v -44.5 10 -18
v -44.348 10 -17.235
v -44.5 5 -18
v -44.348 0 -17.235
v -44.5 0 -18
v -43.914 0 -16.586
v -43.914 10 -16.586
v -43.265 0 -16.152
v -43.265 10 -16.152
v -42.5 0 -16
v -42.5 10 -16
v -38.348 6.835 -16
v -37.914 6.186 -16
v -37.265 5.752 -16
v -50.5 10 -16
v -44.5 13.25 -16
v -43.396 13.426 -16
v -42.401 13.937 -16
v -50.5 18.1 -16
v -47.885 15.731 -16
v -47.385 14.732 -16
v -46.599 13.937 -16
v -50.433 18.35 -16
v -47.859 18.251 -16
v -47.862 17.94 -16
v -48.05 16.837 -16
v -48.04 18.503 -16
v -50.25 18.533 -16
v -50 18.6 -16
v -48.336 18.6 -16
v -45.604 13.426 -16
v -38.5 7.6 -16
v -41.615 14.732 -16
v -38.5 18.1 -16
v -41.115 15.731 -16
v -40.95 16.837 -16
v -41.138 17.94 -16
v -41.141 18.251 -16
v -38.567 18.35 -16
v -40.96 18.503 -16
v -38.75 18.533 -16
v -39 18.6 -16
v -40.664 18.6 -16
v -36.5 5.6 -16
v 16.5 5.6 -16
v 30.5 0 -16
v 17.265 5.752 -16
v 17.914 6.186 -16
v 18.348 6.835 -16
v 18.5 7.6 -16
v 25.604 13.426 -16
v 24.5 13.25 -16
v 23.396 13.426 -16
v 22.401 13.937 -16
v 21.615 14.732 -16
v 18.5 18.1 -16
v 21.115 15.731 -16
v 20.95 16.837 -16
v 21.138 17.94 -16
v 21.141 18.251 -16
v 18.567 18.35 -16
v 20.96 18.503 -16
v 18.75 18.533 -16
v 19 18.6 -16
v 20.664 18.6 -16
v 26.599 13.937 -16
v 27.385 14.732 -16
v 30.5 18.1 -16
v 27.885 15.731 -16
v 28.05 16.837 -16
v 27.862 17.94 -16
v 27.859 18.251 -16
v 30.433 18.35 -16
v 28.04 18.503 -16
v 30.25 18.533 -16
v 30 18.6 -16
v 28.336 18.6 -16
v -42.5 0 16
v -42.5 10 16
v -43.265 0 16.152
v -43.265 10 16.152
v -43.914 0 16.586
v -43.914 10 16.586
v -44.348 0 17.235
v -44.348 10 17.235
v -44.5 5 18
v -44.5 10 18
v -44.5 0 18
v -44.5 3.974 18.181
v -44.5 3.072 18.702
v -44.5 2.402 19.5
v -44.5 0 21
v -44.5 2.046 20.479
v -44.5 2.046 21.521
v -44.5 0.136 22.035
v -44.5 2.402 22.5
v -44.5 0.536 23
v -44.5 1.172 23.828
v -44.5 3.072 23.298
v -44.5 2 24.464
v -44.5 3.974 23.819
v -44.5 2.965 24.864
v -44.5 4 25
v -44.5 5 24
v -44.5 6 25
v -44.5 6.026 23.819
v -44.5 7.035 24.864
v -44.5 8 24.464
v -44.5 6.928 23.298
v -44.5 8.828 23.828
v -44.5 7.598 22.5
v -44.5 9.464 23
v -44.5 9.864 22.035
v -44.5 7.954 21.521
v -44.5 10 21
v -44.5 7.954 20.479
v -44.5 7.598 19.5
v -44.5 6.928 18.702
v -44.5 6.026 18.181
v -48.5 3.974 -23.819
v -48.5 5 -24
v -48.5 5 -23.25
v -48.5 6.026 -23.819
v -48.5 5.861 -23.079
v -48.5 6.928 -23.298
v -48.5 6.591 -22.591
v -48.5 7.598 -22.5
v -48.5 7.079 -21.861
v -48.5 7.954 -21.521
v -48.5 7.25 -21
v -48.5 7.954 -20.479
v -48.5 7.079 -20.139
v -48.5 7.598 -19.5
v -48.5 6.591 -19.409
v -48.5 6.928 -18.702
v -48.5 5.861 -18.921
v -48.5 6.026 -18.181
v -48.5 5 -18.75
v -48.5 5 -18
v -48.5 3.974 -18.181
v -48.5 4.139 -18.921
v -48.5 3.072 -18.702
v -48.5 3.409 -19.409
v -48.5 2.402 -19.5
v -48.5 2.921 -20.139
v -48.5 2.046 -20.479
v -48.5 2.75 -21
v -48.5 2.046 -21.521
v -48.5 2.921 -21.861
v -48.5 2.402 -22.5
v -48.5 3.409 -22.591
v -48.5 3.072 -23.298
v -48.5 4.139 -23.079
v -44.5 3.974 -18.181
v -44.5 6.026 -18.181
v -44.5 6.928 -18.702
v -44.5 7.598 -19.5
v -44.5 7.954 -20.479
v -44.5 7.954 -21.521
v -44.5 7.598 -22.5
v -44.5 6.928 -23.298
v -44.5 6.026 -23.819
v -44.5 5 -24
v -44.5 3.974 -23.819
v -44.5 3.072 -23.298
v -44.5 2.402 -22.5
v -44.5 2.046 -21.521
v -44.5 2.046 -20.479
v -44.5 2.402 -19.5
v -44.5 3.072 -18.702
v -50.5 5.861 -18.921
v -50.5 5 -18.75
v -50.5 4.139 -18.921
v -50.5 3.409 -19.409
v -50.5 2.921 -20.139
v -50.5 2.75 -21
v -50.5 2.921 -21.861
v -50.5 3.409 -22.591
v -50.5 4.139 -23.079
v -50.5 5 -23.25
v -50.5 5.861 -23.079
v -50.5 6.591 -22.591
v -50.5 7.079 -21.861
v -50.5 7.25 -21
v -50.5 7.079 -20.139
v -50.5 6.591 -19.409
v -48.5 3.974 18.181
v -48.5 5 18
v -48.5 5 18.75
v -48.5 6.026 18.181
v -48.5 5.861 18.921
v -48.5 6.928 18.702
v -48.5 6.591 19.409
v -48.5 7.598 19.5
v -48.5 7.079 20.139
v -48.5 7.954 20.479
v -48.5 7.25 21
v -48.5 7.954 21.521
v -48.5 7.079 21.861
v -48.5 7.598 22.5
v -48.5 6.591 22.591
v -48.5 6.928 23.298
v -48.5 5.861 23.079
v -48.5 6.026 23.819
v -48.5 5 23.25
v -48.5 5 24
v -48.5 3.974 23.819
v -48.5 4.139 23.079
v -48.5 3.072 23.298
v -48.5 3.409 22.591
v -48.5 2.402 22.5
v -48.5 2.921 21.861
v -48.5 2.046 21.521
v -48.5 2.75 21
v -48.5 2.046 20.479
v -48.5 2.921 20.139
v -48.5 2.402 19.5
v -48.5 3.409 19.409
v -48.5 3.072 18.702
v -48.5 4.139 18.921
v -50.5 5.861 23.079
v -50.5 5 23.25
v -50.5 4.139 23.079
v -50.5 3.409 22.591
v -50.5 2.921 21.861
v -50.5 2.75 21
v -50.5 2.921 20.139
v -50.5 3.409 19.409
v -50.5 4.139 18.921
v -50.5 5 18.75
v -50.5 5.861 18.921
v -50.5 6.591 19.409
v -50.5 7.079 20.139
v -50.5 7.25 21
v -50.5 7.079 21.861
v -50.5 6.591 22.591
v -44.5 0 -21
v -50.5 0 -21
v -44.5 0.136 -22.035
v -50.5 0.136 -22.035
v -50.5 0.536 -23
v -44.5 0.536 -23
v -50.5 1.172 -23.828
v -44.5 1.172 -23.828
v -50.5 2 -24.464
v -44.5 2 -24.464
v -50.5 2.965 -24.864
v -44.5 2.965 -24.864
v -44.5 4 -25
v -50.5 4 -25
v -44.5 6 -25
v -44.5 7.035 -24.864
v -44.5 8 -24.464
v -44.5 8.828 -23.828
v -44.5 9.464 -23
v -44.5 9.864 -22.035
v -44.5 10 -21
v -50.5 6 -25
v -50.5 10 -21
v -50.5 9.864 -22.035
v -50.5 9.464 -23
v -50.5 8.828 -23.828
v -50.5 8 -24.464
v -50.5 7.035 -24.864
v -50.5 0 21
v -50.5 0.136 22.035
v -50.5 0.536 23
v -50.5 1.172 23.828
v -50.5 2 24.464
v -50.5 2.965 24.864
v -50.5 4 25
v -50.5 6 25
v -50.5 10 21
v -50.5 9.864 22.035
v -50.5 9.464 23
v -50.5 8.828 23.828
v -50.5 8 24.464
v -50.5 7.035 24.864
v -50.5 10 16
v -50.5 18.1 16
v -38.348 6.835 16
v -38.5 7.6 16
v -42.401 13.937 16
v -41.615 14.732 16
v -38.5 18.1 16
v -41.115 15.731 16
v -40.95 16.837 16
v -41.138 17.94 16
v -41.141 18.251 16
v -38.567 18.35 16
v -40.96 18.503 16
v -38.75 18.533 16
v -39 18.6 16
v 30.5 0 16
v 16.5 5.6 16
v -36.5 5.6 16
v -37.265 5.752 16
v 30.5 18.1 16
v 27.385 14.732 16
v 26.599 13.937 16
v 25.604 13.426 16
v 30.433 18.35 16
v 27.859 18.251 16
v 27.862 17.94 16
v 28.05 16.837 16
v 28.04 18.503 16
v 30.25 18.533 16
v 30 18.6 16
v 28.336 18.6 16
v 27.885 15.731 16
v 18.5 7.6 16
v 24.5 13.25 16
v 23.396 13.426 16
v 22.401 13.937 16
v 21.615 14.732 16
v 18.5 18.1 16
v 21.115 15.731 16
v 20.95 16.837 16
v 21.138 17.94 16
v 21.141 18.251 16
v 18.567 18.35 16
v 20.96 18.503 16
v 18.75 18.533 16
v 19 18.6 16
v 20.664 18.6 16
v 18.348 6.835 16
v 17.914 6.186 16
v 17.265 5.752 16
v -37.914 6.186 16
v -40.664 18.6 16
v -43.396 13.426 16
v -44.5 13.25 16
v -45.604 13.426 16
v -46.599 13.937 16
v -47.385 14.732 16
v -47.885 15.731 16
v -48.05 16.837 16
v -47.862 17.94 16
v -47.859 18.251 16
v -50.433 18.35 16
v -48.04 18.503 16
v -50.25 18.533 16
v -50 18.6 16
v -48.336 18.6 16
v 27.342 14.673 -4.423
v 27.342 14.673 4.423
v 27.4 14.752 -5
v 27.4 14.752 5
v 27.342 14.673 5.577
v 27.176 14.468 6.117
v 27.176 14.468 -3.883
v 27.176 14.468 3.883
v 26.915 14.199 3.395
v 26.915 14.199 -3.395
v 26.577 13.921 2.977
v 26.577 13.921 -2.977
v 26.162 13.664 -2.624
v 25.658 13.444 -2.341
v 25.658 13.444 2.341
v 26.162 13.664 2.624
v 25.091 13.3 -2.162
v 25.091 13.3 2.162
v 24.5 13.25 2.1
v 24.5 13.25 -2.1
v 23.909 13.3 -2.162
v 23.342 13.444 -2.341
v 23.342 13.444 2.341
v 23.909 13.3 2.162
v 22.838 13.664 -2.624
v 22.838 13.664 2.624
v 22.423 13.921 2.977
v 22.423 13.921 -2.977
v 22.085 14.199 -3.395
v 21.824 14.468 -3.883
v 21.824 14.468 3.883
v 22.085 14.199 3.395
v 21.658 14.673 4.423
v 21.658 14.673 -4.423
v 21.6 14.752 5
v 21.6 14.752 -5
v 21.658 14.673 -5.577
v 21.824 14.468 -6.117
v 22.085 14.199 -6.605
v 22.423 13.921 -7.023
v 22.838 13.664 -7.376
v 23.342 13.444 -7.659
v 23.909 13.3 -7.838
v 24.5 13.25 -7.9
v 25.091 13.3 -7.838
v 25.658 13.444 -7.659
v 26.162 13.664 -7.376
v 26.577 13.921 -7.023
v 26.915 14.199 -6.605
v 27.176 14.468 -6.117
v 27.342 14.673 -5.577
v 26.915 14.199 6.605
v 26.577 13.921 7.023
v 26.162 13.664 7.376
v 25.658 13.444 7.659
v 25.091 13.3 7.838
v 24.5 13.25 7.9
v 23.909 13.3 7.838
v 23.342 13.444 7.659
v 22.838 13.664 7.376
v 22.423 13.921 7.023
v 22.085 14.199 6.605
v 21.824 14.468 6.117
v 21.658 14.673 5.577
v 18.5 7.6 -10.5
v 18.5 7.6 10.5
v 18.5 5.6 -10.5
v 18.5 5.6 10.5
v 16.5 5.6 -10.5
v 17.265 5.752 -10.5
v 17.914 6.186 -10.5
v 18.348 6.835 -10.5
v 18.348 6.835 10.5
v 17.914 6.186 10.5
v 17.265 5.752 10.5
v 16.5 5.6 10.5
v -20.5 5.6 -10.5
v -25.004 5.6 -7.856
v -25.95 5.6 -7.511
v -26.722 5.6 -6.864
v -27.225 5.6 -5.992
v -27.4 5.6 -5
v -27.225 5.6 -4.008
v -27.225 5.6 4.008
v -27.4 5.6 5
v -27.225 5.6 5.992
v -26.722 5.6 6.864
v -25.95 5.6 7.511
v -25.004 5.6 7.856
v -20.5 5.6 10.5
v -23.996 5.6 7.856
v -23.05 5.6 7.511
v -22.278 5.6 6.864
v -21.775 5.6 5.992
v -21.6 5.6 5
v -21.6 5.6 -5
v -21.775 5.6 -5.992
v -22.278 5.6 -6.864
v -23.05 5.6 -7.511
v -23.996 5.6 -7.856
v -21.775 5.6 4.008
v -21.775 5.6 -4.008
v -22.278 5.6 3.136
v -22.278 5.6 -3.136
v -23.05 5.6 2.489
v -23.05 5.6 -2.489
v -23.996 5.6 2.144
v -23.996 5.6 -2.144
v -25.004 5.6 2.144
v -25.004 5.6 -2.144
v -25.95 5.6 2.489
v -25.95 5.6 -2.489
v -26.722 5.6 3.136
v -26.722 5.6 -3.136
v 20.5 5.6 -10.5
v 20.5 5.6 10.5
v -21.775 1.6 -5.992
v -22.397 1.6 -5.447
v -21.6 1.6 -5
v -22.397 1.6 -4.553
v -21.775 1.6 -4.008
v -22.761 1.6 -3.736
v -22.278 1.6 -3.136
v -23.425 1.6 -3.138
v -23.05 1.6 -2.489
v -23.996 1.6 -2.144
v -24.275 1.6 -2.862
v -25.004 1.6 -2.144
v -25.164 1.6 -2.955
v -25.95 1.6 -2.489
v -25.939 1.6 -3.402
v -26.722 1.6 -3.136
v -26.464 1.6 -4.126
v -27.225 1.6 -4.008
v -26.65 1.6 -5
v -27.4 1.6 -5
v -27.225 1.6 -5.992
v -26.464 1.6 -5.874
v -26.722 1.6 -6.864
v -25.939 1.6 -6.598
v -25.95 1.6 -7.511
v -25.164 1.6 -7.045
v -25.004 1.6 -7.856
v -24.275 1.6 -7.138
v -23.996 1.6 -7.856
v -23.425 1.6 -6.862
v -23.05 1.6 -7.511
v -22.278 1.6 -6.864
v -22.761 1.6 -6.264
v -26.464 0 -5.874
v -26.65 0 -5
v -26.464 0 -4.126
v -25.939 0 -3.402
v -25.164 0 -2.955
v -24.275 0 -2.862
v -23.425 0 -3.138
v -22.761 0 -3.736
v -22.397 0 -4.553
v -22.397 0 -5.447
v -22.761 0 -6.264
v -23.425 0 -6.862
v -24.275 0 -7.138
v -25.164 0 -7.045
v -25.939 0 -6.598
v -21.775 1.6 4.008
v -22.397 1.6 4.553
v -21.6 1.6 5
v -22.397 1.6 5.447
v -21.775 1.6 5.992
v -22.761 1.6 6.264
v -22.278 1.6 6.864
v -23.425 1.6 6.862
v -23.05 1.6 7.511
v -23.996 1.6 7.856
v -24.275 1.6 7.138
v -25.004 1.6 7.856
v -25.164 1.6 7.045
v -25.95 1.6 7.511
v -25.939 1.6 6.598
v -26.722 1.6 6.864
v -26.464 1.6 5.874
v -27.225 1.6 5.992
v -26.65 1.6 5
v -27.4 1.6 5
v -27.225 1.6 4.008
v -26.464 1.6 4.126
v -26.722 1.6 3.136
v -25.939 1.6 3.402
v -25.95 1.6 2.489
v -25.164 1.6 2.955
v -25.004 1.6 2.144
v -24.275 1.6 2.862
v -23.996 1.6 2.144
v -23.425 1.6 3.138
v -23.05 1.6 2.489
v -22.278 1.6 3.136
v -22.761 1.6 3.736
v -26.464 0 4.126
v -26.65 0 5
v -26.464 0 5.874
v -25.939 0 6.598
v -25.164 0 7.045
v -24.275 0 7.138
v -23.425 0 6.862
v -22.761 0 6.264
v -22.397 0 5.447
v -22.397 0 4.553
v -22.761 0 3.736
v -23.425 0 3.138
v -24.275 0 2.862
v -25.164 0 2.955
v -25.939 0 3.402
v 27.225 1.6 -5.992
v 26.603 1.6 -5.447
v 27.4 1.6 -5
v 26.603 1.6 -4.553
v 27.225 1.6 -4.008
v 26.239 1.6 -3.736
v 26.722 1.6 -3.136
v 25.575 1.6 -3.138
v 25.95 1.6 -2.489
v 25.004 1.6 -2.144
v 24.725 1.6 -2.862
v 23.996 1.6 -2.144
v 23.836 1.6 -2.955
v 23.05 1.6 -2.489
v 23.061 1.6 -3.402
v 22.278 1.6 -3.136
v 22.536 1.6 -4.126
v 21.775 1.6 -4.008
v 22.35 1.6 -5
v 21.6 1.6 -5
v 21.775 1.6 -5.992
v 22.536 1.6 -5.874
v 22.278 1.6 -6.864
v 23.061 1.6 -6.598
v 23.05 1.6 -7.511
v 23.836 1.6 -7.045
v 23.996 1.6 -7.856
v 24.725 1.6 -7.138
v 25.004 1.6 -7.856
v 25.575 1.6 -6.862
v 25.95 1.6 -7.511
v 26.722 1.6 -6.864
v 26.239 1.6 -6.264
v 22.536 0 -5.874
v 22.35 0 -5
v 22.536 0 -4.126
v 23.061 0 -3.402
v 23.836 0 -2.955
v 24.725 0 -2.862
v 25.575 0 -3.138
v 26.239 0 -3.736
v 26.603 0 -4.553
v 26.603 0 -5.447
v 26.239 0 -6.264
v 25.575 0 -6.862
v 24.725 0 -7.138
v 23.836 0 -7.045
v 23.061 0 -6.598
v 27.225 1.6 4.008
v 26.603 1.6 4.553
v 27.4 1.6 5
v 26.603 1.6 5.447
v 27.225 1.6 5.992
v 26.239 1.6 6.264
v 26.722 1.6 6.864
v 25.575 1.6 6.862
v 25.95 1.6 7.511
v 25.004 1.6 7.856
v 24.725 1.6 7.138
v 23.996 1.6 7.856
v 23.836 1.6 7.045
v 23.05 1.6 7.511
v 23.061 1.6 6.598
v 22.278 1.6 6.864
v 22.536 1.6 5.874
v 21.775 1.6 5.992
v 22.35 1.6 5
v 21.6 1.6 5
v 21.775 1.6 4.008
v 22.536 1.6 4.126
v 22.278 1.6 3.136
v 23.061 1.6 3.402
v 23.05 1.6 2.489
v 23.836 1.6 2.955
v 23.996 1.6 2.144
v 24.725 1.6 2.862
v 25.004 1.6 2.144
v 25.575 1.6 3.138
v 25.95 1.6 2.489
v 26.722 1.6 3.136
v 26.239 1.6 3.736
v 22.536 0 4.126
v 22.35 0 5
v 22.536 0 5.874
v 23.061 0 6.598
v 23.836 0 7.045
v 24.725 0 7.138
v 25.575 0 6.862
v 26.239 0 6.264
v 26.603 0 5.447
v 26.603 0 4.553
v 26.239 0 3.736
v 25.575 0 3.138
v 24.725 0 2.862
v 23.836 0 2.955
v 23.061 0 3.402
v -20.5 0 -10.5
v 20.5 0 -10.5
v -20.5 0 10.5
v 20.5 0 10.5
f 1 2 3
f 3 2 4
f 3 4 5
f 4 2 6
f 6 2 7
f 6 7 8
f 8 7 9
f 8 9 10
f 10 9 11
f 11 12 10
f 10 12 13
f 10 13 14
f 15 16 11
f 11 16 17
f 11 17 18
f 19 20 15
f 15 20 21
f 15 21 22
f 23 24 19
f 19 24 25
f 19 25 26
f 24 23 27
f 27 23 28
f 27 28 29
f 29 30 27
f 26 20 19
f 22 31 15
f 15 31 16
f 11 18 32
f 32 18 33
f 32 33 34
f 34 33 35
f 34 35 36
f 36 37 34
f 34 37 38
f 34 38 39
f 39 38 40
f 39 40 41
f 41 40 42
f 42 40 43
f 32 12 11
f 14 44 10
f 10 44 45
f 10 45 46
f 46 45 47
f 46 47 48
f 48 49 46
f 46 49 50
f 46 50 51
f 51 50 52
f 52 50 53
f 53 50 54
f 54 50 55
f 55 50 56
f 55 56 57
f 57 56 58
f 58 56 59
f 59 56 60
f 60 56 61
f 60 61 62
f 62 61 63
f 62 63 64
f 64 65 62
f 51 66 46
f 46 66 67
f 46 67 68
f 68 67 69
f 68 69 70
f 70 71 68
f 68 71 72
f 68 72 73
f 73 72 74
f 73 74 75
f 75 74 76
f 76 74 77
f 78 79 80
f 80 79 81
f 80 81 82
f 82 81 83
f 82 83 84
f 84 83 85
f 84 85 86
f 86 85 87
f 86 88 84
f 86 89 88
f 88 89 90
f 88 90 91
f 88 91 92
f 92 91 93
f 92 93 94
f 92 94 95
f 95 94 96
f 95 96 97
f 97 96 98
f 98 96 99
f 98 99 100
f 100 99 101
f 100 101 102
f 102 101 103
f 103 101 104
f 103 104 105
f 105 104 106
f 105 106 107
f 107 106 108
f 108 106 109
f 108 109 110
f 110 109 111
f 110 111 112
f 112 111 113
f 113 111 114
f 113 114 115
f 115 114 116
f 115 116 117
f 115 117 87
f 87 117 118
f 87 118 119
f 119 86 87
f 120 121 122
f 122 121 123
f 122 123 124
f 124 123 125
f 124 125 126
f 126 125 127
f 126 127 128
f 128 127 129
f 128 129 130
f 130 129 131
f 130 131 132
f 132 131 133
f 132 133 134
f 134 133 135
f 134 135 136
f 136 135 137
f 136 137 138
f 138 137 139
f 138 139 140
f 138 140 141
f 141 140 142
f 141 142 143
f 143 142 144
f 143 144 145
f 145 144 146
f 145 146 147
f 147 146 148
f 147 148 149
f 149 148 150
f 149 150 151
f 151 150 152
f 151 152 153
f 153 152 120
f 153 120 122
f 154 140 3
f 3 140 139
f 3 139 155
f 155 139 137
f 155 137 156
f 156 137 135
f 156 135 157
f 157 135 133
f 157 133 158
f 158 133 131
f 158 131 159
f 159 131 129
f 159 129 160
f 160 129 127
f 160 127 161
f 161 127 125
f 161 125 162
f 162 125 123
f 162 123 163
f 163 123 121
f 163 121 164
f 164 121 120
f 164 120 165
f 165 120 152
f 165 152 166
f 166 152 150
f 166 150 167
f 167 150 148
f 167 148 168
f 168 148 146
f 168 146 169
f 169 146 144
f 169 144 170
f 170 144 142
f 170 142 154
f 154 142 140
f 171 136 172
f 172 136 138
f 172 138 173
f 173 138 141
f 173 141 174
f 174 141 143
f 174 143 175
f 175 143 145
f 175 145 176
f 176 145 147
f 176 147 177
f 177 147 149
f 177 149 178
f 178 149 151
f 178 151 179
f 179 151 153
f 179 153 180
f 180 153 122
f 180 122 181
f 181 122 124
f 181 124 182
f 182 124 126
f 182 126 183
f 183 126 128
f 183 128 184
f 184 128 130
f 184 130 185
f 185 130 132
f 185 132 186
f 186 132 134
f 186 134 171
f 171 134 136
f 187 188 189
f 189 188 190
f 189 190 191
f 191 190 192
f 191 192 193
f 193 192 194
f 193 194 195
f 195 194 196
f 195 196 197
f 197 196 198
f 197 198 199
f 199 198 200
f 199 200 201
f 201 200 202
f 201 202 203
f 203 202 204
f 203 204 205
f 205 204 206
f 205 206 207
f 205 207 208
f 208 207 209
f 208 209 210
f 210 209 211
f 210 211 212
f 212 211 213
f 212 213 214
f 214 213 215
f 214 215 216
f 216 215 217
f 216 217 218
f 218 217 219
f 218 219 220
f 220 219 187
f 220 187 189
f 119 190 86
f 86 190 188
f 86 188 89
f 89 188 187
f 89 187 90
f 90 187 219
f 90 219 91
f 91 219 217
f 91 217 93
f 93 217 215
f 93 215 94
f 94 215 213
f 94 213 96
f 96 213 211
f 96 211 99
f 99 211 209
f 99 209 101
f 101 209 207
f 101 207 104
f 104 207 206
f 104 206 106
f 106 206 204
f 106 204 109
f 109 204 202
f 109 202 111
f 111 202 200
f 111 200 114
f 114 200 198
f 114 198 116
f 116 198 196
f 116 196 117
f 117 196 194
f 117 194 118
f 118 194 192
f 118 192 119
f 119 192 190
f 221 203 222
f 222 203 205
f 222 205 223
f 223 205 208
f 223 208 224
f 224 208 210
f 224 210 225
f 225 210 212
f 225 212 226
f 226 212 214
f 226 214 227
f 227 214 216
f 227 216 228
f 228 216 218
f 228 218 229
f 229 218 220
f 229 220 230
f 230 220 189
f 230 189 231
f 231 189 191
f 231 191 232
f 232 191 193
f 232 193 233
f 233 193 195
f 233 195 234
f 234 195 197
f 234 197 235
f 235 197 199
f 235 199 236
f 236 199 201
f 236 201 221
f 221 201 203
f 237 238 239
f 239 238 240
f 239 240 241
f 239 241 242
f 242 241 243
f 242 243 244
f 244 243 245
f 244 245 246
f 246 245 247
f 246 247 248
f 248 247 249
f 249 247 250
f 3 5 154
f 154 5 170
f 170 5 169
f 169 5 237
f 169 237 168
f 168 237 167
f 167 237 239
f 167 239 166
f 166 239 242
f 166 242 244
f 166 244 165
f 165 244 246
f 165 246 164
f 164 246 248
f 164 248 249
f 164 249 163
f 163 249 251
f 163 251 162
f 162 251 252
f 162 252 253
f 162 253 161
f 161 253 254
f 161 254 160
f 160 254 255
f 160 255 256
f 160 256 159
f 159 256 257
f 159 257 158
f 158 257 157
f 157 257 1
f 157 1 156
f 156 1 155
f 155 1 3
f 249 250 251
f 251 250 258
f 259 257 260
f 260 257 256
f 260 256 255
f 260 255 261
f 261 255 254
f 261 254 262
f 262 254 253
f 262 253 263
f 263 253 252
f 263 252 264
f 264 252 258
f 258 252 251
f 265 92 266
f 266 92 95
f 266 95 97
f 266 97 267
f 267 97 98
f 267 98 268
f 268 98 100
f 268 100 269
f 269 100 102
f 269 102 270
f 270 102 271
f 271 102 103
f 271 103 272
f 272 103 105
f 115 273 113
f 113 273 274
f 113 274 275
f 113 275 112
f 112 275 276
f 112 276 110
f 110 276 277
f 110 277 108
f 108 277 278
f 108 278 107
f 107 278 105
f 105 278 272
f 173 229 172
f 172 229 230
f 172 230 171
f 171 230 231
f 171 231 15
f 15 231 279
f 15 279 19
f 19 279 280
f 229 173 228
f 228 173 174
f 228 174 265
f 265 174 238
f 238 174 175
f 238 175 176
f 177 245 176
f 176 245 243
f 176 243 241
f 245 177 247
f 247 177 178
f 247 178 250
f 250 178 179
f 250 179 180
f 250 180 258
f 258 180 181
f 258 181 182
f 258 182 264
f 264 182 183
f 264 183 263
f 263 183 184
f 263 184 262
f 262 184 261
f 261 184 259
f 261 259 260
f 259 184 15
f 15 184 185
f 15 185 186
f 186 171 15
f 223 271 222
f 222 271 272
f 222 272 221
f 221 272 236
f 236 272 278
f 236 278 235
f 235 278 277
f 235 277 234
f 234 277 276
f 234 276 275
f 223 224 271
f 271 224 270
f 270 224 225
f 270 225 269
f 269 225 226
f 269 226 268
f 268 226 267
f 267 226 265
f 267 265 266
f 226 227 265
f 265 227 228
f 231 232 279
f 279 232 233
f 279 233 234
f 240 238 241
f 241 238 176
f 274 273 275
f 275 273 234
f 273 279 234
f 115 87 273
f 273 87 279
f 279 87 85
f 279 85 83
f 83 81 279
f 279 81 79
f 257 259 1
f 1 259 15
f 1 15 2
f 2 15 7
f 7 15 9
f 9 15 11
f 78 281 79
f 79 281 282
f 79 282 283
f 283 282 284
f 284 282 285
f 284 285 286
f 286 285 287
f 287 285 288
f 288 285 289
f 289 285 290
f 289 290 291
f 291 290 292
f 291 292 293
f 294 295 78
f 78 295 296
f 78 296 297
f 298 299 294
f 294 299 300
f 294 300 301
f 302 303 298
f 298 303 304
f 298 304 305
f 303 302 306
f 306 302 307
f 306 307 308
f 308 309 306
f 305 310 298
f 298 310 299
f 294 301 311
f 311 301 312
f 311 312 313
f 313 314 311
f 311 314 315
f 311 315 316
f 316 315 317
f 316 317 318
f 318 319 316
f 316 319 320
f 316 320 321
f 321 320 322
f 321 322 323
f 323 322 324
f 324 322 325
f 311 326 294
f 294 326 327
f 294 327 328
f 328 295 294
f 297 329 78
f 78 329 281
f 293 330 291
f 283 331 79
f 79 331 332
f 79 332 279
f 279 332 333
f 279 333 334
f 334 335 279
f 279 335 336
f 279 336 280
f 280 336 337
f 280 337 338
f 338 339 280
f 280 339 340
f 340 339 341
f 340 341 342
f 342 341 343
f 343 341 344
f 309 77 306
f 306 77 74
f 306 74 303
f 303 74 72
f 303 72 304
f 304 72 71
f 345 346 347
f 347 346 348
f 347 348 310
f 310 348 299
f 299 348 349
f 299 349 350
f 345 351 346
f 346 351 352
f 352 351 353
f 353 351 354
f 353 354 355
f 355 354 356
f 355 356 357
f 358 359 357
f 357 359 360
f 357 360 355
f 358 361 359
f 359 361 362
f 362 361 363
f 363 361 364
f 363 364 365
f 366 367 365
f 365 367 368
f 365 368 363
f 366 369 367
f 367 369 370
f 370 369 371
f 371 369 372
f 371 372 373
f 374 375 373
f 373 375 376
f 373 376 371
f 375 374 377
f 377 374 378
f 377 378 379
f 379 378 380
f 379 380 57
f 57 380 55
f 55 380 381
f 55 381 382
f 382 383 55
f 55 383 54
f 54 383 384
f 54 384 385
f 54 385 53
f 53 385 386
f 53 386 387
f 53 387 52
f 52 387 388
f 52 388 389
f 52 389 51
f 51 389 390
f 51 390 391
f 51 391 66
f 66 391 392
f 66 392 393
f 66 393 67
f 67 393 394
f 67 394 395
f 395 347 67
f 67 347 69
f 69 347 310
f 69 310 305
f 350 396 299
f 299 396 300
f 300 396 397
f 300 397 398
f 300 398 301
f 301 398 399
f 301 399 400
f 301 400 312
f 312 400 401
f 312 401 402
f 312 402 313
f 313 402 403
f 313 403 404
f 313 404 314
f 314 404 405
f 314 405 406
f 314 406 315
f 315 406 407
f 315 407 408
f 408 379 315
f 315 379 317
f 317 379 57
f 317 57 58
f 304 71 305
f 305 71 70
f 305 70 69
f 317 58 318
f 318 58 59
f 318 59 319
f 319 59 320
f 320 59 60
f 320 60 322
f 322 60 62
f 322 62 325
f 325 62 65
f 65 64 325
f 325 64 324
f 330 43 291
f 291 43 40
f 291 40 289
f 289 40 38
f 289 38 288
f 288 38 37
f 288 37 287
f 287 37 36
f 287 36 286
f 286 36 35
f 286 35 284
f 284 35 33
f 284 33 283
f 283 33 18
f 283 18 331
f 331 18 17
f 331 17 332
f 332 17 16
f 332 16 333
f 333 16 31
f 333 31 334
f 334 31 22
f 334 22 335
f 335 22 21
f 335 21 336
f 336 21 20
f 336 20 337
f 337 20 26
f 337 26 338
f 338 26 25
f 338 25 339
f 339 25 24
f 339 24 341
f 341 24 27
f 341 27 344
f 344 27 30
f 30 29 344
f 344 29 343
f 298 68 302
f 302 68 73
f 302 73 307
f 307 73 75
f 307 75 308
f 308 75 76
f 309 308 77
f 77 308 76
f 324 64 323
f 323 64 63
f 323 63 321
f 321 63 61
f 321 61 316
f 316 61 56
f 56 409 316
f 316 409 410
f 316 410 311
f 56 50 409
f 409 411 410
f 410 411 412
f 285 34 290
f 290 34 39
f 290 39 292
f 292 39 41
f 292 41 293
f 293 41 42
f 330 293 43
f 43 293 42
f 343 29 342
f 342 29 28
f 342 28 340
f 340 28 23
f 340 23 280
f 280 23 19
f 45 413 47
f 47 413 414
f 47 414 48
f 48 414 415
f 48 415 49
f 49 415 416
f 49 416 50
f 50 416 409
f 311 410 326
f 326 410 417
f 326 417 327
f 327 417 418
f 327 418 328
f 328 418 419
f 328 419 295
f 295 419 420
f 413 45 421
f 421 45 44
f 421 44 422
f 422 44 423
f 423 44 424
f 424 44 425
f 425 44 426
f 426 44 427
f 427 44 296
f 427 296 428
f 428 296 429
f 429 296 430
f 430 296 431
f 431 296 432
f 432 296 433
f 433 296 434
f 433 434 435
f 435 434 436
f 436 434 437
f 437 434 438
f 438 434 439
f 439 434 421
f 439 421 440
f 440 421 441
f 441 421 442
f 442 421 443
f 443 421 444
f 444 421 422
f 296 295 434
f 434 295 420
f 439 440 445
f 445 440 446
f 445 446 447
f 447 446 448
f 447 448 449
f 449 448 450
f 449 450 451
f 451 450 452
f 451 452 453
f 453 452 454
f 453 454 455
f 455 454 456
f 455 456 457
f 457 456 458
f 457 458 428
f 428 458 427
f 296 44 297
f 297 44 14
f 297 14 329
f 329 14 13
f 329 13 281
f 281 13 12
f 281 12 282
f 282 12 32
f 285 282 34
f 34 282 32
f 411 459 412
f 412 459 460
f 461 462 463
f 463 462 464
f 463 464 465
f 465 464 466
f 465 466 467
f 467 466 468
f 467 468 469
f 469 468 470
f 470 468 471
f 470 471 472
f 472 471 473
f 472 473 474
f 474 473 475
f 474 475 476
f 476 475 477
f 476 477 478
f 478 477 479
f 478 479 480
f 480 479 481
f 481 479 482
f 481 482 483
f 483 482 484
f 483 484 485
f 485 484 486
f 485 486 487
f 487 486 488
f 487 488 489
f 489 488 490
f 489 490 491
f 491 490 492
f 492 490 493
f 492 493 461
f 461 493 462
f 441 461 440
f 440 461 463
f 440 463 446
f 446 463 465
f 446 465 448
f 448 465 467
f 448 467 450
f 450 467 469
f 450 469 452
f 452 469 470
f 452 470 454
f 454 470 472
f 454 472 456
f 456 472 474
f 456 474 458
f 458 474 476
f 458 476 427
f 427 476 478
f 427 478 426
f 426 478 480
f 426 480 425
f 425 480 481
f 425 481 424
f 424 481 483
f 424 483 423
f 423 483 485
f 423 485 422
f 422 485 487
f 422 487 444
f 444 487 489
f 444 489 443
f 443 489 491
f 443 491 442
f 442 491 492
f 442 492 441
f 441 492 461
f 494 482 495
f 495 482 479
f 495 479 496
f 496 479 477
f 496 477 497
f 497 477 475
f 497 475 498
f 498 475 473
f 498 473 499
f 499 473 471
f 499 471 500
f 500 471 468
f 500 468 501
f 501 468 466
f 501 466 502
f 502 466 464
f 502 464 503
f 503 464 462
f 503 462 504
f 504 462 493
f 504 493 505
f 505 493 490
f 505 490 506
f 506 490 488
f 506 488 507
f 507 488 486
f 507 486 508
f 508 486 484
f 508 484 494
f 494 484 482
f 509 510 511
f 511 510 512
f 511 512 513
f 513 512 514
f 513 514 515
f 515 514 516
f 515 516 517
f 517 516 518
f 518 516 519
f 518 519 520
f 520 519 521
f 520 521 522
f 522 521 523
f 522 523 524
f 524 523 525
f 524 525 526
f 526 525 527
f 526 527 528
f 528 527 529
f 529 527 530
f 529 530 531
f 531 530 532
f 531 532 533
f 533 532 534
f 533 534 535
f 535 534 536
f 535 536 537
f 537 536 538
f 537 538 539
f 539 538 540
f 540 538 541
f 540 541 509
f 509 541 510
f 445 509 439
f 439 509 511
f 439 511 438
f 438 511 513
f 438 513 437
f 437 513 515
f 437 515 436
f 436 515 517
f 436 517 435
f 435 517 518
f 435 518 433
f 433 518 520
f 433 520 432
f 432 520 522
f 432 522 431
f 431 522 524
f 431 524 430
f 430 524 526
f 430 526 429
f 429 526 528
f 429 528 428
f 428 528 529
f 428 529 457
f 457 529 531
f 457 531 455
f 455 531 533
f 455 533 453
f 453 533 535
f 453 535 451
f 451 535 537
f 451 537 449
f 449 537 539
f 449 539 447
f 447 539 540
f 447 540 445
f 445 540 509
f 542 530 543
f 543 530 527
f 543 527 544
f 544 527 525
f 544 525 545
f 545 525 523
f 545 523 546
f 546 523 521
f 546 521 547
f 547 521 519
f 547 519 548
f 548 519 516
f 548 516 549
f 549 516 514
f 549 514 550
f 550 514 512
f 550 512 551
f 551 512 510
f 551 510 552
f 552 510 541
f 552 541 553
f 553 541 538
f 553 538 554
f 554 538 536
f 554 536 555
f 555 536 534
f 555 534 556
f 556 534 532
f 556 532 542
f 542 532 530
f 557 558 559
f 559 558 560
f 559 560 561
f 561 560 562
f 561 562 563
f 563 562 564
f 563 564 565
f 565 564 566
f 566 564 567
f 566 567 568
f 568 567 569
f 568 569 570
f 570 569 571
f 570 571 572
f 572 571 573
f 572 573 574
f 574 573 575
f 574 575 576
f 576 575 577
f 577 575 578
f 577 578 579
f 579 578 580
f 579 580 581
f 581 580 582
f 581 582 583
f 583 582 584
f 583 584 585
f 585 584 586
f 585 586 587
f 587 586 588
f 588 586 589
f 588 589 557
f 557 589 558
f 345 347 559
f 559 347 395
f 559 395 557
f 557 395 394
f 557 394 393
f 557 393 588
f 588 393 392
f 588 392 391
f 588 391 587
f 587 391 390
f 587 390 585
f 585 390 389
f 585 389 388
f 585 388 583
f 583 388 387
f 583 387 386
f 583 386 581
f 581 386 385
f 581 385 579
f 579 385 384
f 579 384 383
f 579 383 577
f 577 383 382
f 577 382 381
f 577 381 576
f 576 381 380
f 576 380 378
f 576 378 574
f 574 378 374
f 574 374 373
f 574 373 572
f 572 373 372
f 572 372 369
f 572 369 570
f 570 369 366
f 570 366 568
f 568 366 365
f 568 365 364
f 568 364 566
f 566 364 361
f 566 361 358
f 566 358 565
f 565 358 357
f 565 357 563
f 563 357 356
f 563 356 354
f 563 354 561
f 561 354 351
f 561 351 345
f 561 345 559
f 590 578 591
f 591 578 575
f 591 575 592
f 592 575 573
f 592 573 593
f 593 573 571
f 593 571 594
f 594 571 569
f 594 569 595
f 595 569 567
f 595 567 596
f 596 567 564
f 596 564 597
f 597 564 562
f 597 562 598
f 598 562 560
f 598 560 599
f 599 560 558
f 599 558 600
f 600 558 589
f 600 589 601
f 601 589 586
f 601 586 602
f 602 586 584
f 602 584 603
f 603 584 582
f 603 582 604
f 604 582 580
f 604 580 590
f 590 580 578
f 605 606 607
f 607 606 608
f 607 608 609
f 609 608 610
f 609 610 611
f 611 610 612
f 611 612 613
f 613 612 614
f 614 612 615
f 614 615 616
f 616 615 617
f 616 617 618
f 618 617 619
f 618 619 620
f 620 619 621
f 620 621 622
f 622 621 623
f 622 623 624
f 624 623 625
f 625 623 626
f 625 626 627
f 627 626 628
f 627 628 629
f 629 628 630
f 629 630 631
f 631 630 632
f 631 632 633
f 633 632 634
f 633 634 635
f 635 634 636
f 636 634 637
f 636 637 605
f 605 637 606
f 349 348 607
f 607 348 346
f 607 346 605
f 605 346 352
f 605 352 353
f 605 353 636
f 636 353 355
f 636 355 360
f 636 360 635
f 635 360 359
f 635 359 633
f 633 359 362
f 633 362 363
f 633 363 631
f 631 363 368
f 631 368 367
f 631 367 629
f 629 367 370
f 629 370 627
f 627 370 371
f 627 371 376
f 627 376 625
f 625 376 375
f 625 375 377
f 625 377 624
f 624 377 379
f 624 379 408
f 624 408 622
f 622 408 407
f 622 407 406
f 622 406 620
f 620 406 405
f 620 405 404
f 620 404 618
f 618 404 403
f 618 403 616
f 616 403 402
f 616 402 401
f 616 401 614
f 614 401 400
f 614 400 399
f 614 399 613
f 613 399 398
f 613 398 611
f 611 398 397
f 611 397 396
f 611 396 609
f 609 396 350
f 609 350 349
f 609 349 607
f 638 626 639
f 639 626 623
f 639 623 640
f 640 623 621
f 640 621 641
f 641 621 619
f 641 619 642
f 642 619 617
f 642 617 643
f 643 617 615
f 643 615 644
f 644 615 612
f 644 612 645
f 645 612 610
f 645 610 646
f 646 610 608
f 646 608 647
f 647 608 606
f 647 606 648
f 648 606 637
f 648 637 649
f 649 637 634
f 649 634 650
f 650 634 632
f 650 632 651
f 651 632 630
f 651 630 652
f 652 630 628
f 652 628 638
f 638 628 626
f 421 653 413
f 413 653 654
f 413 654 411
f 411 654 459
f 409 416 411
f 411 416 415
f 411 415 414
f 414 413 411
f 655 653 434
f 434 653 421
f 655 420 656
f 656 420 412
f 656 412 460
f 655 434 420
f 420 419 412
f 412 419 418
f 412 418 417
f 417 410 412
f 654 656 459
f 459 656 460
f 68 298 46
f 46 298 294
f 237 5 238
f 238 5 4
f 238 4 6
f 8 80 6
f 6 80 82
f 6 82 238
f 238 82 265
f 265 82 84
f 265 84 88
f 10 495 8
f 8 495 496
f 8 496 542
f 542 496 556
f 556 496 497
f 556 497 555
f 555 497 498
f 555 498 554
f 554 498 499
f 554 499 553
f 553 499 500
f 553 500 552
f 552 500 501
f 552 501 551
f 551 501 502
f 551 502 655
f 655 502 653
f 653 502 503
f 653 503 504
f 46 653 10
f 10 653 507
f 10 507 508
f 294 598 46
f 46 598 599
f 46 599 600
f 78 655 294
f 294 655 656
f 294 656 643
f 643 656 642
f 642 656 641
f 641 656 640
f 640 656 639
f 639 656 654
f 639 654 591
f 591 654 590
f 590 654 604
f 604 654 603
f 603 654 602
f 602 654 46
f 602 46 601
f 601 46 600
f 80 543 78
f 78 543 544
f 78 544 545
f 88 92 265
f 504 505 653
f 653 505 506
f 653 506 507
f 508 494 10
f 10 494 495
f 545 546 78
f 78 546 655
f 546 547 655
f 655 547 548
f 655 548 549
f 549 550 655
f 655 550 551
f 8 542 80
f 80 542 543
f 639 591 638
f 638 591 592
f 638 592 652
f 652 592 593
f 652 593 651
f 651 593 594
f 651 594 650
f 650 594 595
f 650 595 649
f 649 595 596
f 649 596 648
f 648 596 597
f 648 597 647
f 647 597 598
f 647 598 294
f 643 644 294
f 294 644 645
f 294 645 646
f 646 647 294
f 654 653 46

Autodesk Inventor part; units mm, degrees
ref_plane "YZ Plane" through (0, 0, 0) normal (1, 0, 0) x (0, 1, 0)
ref_plane "XZ Plane" through (0, 0, 0) normal (0, 1, 0) x (-1, 0, 0)
ref_plane "XY Plane" through (0, 0, 0) normal (0, 0, 1) x (1, 0, 0)
sketch "Sketch1" plane through (0, 0, 0) normal (0, 1, 0) x (-1, 0, 0)
  line L0 (-20, -10) -> (20, -10)
  line L1 (20, -10) -> (20, 10)
  line L2 (20, 10) -> (-20, 10)
  line L3 (-20, 10) -> (-20, -10)
  line L4 (-20, -10) -> (20, 10) construction
  line L5 (20, -10) -> (-20, 10) construction
  circle A0 centre (10, 0) radius 2.6964
  circle A1 centre (24.5, 5) radius 2
  circle A2 centre (24.5, -5) radius 2
  line L6 (66.7, 0) -> (-46.7, 0) projected
  circle A3 centre (-24.5, 5) radius 2
  circle A4 centre (-24.5, -5) radius 2
  line L7 (50.5, 16) -> (-30.5, 16)
  line L8 (-30.5, 16) -> (-30.5, -16)
  line L9 (-30.5, -16) -> (50.5, -16)
  line L10 (50.5, -16) -> (50.5, 16)
  line L11 (10, 6.1182) -> (10, -6.1182) construction
  line L12 (-28.5, 14.25) -> (-28.5, 16)
  line L13 (20.5, 10.5) -> (20.5, -10.5)
  line L14 (20.5, -10.5) -> (-20.5, -10.5)
  line L15 (-20.5, -10.5) -> (-20.5, 10.5)
  line L16 (-20.5, 10.5) -> (20.5, 10.5)
  point P0 (0, 0)
  point P1 (-20.5, 0)
  point P2 (20.5, 0)
  point P3 (20, 0)
  point P4 (-20, 0)
  dimension "d0" = 40
  dimension "d1" = 20
  dimension "d2" = 30
  dimension "d3" = 10
  dimension "d4" = 4.5
  dimension "d5" = 10
  dimension "d6" = 4.5
  dimension "d7" = 4
  dimension "d8" = 6
  dimension "d9" = 6
  dimension "d31" = 0.5
extrude "Base" add sketch "Sketch1" along normal blind 5.6 contours L15 L14 L13 L6 L10 L9 L8 | L6 L8 L7 L10 L13 L16 L15 | A1 | A2 | A3 | A4
sketch "Sketch3" plane through (0, 5.6, 0) normal (0, 1, 0) x (1, 0, 0)
  line L0 (-66.7, 0) -> (46.7, 0) projected
  line L1 (0, -6.8326) -> (0, 7.3627) construction
  circle A0 centre (24.5, -5) radius 2.9
  circle A1 centre (24.5, 5) radius 2.9
  circle A2 centre (-24.5, -5) radius 2.9
  circle A3 centre (-24.5, 5) radius 2.9
  line L2 (20, -10) -> (20, 10) projected
  point P0 (0, 0)
  dimension "d19" = 10
  dimension "d28" = 5.8
  dimension "d32" = 4.5
hole "Servo mount holes" at (24.5, 5.6, 5) at (24.5, 5.6, -5) at (-24.5, 5.6, 5) at (-24.5, 5.6, -5) direction (0, -1, 0) diameter 4.3 end through all counterbore diameter 5.8 counterbore depth 4
sketch "Sketch2" plane through (-50.5, 0, 16) normal (0, 0, 1) x (1, 0, 0)
  line L0 (81, 5.6) -> (0, 5.6) projected
  line L1 (0, 5.6) -> (12, 5.6)
  line L2 (12, 5.6) -> (12, 18.6)
  line L3 (12, 18.6) -> (0, 18.6)
  line L4 (0, 18.6) -> (0, 5.6)
  circle A0 centre (6, 16.8) radius 3.55
  circle A1 centre (6, 16.8) radius 3.05
  line L5 (40.5, 13.1003) -> (40.5, -16.3877) construction
  line L6 (81, 5.6) -> (69, 5.6)
  line L7 (69, 5.6) -> (69, 18.6)
  line L8 (69, 18.6) -> (81, 18.6)
  line L9 (81, 18.6) -> (81, 5.6)
  circle A2 centre (75, 16.8) radius 3.55
  circle A3 centre (75, 16.8) radius 3.05
  line L10 (2.45, 16.8) -> (9.55, 16.8)
  line L11 (78.55, 16.8) -> (71.45, 16.8)
  point P0 (50.5, 0)
  point P1 (9.0598, 18.6)
  point P2 (2.9402, 18.6)
  point P3 (8.4622, 18.6)
  point P4 (3.5378, 18.6)
  point P5 (6, 18.6)
  point P6 (40.5, 5.6)
  point P7 (75, 18.6)
  point P8 (78.0598, 18.6)
  point P9 (71.9402, 18.6)
  point P10 (72.5378, 18.6)
  point P11 (77.4622, 18.6)
  point P12 (71.95, 16.8)
  point P13 (78.05, 16.8)
  point P14 (9.05, 16.8)
  point P15 (2.95, 16.8)
  dimension "d12" = 12
  dimension "d13" = 13
  dimension "d14" = 7.1
  dimension "d33" = 0.5
  dimension "d38" = 1.8
extrude "Linear rod mount" add sketch "Sketch2" against normal up to surface (32 mm away) contours L0 L4 L3 A0 L2 | L0 L7 L8 A2 L9
extrude "Servo mount hole extended" cut sketch "Sketch3" along normal blind 10 contours A0 | A1
fillet "Fillet1" radius 2 3 edges at (-38.5, 5.6, 0) (18.5, 5.6, 13.25) (18.5, 5.6, -13.25)
fillet "Fillet2" radius 0.5 8 edges at (-50.5, 18.6, 0) (-38.5, 18.6, 0) (18.5, 18.6, 0) (30.5, 18.6, 0) (-47.5598, 18.6, 0) (-41.4402, 18.6, 0) (21.4402, 18.6, 0) (27.5598, 18.6, 0)
sketch "Sketch4" plane through (0, 0, 0) normal (0, 0, 1) x (1, 0, 0)
  line L0 (-50.5, 0) -> (-44.5, 0)
  line L1 (-44.5, 0) -> (-44.5, 10)
  line L2 (-44.5, 10) -> (-50.5, 10)
  line L3 (-50.5, 10) -> (-50.5, 0)
  point P0 (0, 0)
  dimension "d39" = 10
  dimension "d40" = 6
extrude "Extrusion5" add sketch "Sketch4" along normal mid plane 50
fillet "Fillet3" radius 4 4 edges at (-47.5, 10, 25) (-47.5, 0, 25) (-47.5, 10, -25) (-47.5, 0, -25)
sketch "Sketch5" plane through (-44.5, 0, 16) normal (1, 0, 0) x (0, 0, -1)
  arc A0 (-5, 10) -> (-9, 6) centre (-5, 6) ccw projected
  arc A1 (41, 6) -> (37, 10) centre (37, 6) ccw projected
  line L0 (-9, 4) -> (-9, 6) projected
  line L1 (41, 6) -> (41, 4) projected
  point P0 (16, 0)
  point P1 (-5, 5)
  point P2 (37, 5)
  point P3 (-5, 0)
  point P4 (-9, 5)
  point P5 (41, 5)
hole "Hole2" at (-44.5, 5, 21) at (-44.5, 5, -21) direction (-1, 0, 0) diameter 4.5 end through all counterbore diameter 6 counterbore depth 4
fillet "Fillet4" radius 2 2 edges at (-44.5, 5, 16) (-44.5, 5, -16)
equation "\"d9\" = d8"
properties part number "Servo mount - fron"
